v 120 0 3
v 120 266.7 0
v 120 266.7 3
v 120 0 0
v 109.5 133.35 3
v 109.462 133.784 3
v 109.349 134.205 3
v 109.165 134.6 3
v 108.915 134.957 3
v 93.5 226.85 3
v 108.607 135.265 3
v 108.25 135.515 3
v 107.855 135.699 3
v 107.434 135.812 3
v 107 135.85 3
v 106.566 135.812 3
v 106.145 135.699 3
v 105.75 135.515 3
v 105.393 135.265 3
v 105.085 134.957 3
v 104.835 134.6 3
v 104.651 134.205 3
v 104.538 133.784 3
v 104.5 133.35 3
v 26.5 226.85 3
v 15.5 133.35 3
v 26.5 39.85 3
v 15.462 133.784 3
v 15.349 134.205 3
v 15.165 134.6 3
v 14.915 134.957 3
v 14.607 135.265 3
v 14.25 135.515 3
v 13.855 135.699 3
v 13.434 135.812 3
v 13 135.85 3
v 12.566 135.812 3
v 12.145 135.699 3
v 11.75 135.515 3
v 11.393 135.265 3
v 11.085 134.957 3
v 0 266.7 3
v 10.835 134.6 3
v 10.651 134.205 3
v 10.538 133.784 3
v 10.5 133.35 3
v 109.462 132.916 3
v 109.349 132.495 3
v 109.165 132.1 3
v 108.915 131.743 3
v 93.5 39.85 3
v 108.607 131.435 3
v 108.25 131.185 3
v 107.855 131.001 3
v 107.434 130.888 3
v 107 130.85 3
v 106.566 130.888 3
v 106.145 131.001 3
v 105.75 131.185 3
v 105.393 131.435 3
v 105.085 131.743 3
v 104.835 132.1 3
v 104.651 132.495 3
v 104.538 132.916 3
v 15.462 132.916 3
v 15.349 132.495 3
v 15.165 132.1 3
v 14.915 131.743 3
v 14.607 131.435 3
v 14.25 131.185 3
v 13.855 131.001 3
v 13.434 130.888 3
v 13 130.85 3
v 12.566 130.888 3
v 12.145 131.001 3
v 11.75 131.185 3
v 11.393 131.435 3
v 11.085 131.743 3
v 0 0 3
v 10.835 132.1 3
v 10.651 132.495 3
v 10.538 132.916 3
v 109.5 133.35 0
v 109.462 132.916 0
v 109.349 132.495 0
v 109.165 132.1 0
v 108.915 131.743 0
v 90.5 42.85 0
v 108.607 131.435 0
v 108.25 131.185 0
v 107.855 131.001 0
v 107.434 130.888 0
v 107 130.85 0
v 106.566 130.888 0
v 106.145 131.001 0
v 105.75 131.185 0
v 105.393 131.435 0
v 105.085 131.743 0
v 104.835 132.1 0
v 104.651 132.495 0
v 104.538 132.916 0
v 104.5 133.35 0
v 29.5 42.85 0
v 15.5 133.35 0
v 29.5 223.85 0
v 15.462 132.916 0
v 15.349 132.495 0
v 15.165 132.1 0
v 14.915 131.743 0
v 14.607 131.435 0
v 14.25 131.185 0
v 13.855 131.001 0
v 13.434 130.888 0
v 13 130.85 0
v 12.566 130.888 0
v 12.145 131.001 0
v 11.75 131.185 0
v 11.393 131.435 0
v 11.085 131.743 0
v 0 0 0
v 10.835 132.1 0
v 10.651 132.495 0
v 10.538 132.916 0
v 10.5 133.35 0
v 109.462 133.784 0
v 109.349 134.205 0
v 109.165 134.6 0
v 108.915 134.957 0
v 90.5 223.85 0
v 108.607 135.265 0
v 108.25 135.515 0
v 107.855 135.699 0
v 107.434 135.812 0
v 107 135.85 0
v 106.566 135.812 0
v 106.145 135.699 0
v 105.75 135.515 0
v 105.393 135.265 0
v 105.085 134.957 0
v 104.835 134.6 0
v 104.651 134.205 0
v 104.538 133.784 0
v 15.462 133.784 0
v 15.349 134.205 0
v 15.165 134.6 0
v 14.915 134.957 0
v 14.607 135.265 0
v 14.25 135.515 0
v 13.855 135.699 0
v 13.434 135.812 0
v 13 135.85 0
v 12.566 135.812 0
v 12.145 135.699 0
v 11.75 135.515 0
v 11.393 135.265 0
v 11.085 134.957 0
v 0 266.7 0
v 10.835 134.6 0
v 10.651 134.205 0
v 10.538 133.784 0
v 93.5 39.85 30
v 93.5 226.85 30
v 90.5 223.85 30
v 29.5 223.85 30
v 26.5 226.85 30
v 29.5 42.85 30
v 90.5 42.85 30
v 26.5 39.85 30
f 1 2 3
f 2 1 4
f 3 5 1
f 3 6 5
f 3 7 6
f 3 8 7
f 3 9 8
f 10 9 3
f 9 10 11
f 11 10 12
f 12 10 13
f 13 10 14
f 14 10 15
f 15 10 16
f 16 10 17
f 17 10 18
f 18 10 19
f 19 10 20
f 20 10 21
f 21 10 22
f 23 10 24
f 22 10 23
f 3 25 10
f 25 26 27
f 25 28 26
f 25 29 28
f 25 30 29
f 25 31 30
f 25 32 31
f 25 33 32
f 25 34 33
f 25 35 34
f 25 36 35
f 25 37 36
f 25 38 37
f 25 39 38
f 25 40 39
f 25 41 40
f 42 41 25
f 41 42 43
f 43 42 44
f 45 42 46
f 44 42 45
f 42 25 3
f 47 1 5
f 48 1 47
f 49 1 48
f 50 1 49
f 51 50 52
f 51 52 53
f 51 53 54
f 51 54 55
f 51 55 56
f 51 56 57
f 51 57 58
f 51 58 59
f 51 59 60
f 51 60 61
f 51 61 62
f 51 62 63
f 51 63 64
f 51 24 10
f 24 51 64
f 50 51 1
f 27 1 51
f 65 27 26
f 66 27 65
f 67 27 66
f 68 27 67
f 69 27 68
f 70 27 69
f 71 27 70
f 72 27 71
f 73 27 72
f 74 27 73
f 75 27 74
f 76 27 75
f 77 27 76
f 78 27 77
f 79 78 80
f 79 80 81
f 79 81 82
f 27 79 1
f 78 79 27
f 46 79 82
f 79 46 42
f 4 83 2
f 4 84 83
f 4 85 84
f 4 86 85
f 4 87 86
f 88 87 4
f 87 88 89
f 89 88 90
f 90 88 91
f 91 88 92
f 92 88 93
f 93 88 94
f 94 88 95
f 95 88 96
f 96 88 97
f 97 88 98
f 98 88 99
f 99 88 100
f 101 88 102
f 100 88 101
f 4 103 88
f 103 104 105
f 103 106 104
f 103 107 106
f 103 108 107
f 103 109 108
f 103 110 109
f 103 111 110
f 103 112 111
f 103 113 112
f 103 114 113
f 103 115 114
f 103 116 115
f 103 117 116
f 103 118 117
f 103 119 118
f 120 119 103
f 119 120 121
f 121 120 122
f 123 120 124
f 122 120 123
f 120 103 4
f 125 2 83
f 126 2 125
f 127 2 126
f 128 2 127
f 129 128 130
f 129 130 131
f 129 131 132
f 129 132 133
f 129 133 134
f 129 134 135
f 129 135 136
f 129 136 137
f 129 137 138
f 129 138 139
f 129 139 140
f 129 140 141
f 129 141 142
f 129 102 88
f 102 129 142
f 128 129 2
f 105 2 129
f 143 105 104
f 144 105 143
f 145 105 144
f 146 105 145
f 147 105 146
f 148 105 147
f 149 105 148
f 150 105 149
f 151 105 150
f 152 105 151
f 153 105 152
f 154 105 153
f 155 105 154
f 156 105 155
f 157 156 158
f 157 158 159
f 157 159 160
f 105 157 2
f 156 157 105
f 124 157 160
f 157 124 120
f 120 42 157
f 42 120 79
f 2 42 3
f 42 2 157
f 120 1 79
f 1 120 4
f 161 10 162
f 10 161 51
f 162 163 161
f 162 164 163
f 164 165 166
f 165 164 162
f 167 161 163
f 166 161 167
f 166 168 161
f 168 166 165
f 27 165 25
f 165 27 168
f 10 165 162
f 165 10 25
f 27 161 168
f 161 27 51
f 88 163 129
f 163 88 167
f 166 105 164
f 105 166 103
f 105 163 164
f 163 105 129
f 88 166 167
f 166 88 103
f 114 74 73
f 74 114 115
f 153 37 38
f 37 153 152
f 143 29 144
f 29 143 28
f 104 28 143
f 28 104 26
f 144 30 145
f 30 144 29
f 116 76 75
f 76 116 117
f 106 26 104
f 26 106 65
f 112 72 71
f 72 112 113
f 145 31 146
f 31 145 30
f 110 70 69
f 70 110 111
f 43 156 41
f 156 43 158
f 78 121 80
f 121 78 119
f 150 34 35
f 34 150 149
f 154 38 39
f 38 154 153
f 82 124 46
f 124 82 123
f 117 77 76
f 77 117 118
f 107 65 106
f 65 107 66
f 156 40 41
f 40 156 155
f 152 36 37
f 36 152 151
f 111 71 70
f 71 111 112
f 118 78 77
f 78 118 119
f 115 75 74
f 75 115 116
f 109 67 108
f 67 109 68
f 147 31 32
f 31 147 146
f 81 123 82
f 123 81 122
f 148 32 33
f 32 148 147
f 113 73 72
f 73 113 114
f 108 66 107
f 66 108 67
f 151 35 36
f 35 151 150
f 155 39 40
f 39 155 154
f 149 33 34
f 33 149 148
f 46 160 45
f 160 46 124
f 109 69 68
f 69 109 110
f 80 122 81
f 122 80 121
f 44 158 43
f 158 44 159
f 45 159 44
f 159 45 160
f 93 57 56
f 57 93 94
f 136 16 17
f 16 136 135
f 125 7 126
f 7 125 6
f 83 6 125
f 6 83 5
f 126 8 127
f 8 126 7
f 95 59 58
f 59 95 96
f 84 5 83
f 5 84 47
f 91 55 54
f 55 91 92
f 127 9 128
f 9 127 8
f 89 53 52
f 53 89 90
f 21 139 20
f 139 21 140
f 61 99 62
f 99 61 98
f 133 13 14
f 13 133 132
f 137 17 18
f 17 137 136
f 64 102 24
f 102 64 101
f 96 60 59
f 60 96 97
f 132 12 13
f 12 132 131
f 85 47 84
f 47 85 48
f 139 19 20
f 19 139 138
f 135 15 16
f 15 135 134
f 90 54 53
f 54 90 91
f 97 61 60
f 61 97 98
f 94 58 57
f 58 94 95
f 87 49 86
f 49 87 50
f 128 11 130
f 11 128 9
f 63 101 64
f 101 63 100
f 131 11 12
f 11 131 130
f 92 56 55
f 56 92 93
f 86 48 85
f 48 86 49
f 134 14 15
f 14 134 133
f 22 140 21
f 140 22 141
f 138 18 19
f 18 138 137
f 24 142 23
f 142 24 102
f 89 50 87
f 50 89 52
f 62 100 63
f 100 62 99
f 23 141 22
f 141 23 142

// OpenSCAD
// Rack for TP-Link 8 ports Gigabit Ethernet Hub

one_u=44.45;

rack_width=120;
rack_height=6*one_u;

walls_thickness=3;


//(158 × 101 × 25 mm)
device_width=60+1; //?
device_height=180+1; //?
device_depth=101; //? this is only used to make a hole

support_depth=30;

offset=0; // shift device on the plate a bit

difference(){
difference(){

difference(){
union(){
//faceplate
cube([rack_width,rack_height,walls_thickness]);
    
//device support    
translate([(rack_width-device_width)/2-walls_thickness+offset,rack_height/2-(device_height/2+walls_thickness),0]) 
    cube([device_width+2*walls_thickness,device_height+2*walls_thickness,support_depth]);
}

// device number
//text_size=16;
//color("black") translate ([32,one_u/2+text_size/2,-10]) linear_extrude(15) mirror([0,1,0]) text("1",font="Verdana:Bold", size=text_size);
}

//device face/hole
//translate([(rack_width-device_width)/2+offset,device_height/2,-2]) 
translate([(rack_width-device_width)/2+offset,rack_height/2-(device_height/2),-2]) 
    cube([device_width,device_height,device_depth]);
}


$fn=36;

////holes (4 holes, 1 and 3 in 1U)
//union(){
//translate([13,6,-1]) cylinder(10,2.5,2.5);
//
//translate([13,45-6,-1]) cylinder(10,2.5,2.5);
//
//translate([200-13,6,-1]) cylinder(10,2.5,2.5);
//
//translate([200-13,45-6,-1]) cylinder(10,2.5,2.5);
//}


//holes (2 holes, hole 2 only in 1U)
union(){
translate([13,rack_height/2,-1]) cylinder(10,2.5,2.5);

translate([rack_width-13,rack_height/2,-1]) cylinder(10,2.5,2.5);
}



}
